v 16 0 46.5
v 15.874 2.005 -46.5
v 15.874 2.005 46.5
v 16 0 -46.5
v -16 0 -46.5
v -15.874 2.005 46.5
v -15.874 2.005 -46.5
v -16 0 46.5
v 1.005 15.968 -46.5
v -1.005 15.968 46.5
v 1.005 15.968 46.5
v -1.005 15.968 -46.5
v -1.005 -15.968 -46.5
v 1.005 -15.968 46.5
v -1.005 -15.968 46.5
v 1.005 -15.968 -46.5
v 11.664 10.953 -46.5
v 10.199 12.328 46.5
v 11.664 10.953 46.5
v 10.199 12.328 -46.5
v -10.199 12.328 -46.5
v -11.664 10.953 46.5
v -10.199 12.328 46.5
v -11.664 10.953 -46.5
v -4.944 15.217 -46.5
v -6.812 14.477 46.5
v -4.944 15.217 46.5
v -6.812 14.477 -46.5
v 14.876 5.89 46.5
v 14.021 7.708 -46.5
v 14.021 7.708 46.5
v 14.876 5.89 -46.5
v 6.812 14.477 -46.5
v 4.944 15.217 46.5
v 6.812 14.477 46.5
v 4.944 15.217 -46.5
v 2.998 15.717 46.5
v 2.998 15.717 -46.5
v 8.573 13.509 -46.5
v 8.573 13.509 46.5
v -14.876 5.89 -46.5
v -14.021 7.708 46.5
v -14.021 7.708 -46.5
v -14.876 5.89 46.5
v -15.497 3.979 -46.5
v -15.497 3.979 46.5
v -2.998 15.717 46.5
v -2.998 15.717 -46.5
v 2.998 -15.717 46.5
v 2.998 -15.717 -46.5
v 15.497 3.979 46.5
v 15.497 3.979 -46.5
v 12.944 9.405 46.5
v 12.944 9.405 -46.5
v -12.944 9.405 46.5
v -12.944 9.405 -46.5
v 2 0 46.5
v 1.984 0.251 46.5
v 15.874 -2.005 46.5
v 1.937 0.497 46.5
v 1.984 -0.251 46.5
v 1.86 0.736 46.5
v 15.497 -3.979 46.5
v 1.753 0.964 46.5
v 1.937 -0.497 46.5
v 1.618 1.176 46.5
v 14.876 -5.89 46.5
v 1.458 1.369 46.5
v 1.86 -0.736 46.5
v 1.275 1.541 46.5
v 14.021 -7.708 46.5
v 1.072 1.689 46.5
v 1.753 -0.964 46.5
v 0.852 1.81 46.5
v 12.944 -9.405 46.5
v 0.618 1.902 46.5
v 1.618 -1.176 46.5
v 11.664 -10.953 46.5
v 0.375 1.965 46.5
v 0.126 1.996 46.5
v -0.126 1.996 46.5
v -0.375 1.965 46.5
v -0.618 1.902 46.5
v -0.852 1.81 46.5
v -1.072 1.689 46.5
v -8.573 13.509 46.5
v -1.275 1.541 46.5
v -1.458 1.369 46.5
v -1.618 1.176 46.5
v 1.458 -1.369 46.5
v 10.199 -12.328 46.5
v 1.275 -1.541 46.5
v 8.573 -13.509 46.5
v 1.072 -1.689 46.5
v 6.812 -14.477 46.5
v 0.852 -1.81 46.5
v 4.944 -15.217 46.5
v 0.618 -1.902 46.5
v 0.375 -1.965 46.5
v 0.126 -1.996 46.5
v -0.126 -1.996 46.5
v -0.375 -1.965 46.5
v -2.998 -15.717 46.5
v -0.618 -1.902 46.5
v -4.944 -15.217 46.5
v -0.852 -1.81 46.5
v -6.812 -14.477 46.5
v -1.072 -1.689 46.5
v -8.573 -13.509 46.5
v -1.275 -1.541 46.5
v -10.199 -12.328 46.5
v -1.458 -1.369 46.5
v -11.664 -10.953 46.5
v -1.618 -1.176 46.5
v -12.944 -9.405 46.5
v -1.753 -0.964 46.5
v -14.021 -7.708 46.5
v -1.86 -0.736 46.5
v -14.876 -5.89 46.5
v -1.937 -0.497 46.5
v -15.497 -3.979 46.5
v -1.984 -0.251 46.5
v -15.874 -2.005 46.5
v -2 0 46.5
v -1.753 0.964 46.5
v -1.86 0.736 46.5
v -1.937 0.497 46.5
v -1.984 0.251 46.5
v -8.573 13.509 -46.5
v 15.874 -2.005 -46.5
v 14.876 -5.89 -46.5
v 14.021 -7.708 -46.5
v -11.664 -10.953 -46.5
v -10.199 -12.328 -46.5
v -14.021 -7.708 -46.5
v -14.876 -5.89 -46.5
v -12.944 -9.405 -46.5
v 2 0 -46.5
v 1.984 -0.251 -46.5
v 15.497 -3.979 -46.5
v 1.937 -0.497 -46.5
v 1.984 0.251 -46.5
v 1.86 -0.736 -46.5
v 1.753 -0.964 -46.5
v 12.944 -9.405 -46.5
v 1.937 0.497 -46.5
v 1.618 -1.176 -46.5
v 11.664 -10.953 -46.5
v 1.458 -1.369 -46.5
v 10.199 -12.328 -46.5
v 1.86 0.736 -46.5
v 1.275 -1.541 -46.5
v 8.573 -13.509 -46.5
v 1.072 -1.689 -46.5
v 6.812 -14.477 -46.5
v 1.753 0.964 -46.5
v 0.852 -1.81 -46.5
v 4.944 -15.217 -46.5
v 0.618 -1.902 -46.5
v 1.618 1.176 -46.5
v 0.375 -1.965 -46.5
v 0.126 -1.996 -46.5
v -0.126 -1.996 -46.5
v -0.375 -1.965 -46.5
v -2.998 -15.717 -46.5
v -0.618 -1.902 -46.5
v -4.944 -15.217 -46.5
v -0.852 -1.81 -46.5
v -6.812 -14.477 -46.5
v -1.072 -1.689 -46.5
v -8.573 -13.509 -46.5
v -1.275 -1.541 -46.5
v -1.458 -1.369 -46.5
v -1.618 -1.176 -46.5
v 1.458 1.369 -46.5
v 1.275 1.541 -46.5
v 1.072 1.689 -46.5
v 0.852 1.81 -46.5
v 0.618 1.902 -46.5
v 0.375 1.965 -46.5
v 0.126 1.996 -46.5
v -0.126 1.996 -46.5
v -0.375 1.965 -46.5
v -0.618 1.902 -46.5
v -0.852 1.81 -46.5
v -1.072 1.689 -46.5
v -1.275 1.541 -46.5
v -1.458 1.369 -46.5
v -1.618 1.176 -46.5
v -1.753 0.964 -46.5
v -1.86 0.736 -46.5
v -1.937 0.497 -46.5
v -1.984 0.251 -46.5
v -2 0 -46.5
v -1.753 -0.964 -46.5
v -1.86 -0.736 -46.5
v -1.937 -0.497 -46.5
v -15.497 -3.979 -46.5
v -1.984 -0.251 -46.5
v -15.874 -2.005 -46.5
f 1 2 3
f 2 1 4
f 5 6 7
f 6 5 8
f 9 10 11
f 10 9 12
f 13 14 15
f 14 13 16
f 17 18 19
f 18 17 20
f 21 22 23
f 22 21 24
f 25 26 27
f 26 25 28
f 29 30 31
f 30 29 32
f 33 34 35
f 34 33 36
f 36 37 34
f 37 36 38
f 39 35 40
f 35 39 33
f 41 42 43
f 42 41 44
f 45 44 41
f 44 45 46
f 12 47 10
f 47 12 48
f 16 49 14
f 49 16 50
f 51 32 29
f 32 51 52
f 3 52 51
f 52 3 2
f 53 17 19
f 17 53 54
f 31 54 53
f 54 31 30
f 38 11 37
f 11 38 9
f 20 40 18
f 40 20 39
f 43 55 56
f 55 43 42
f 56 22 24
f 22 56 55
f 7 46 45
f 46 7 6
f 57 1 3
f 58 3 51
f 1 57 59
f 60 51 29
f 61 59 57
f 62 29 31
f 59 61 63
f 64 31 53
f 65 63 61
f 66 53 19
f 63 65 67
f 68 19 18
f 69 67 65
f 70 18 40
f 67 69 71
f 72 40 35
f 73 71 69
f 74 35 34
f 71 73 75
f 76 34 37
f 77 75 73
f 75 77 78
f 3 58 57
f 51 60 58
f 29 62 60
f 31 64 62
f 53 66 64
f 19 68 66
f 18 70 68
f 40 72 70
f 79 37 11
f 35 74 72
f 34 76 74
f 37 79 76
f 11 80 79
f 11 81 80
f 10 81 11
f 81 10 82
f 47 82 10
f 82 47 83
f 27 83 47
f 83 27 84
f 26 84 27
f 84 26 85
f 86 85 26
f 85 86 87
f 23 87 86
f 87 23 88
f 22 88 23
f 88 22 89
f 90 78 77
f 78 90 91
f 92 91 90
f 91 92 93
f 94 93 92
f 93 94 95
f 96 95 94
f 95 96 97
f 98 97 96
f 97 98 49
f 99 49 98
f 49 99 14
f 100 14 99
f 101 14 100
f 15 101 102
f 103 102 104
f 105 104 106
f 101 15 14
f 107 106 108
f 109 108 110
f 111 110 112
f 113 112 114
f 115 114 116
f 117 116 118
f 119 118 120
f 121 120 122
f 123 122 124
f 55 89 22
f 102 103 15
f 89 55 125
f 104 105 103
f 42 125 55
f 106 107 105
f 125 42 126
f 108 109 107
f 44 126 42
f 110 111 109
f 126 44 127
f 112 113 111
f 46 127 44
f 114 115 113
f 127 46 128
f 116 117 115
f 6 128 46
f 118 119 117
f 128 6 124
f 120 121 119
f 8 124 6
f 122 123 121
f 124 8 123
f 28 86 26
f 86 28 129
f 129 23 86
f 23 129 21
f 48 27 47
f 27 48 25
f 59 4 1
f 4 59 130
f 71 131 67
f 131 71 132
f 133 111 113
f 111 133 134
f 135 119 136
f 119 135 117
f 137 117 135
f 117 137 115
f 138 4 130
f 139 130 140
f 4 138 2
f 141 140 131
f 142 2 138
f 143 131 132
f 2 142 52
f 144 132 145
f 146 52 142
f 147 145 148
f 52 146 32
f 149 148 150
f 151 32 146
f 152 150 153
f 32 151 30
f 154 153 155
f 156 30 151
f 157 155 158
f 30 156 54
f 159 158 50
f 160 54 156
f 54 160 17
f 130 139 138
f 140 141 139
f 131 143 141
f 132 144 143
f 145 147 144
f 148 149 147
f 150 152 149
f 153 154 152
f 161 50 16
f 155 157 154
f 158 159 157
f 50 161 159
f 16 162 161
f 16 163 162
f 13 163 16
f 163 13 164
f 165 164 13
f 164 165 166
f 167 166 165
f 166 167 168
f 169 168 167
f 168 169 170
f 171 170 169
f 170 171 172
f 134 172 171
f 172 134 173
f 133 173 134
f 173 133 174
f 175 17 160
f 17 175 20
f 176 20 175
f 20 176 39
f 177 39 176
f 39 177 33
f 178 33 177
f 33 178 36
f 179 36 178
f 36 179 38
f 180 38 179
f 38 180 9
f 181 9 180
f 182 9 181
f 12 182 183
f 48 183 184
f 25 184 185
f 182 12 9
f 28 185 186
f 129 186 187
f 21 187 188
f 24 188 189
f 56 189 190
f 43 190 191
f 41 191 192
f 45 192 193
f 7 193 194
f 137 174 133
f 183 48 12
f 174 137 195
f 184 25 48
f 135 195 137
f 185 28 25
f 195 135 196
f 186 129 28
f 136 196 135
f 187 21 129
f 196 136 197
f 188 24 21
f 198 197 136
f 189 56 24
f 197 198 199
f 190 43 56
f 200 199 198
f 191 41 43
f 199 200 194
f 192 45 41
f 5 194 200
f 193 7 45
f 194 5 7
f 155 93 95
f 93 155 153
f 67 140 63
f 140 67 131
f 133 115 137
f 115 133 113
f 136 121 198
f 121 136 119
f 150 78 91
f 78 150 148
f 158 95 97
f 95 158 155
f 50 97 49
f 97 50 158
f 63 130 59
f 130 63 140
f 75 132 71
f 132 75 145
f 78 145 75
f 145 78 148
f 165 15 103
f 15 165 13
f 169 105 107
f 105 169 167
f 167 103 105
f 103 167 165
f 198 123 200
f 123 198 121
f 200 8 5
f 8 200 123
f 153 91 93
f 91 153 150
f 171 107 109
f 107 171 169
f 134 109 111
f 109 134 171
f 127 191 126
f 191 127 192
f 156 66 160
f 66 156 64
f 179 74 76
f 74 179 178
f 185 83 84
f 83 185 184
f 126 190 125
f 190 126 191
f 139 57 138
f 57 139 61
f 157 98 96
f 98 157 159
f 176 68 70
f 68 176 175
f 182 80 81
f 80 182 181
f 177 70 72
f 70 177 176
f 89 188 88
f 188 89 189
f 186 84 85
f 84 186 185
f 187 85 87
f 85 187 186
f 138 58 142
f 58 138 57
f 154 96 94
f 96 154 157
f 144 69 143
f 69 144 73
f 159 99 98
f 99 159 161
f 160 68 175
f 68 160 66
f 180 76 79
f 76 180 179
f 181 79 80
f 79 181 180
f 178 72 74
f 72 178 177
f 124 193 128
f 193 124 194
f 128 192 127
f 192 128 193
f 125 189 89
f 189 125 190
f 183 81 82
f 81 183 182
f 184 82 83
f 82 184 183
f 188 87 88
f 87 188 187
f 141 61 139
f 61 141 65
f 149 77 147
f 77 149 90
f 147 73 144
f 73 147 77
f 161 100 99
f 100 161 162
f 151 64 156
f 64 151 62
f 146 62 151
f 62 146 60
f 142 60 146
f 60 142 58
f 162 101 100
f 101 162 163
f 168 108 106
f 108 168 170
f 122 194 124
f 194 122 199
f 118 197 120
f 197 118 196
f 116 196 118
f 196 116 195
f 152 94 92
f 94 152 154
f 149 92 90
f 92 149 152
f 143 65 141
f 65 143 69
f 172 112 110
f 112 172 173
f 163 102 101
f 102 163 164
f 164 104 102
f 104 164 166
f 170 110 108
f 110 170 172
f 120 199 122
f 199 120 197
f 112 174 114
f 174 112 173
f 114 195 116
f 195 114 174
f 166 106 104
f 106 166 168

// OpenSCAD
$fn = 50;


difference() {
	union() {
		translate(v = [0, 0, -46.5000000000]) {
			cylinder(h = 93, r = 16.0000000000);
		}
	}
	union() {
		translate(v = [0, 0, -100.0000000000]) {
			cylinder(h = 200, r = 2);
		}
	}
}
